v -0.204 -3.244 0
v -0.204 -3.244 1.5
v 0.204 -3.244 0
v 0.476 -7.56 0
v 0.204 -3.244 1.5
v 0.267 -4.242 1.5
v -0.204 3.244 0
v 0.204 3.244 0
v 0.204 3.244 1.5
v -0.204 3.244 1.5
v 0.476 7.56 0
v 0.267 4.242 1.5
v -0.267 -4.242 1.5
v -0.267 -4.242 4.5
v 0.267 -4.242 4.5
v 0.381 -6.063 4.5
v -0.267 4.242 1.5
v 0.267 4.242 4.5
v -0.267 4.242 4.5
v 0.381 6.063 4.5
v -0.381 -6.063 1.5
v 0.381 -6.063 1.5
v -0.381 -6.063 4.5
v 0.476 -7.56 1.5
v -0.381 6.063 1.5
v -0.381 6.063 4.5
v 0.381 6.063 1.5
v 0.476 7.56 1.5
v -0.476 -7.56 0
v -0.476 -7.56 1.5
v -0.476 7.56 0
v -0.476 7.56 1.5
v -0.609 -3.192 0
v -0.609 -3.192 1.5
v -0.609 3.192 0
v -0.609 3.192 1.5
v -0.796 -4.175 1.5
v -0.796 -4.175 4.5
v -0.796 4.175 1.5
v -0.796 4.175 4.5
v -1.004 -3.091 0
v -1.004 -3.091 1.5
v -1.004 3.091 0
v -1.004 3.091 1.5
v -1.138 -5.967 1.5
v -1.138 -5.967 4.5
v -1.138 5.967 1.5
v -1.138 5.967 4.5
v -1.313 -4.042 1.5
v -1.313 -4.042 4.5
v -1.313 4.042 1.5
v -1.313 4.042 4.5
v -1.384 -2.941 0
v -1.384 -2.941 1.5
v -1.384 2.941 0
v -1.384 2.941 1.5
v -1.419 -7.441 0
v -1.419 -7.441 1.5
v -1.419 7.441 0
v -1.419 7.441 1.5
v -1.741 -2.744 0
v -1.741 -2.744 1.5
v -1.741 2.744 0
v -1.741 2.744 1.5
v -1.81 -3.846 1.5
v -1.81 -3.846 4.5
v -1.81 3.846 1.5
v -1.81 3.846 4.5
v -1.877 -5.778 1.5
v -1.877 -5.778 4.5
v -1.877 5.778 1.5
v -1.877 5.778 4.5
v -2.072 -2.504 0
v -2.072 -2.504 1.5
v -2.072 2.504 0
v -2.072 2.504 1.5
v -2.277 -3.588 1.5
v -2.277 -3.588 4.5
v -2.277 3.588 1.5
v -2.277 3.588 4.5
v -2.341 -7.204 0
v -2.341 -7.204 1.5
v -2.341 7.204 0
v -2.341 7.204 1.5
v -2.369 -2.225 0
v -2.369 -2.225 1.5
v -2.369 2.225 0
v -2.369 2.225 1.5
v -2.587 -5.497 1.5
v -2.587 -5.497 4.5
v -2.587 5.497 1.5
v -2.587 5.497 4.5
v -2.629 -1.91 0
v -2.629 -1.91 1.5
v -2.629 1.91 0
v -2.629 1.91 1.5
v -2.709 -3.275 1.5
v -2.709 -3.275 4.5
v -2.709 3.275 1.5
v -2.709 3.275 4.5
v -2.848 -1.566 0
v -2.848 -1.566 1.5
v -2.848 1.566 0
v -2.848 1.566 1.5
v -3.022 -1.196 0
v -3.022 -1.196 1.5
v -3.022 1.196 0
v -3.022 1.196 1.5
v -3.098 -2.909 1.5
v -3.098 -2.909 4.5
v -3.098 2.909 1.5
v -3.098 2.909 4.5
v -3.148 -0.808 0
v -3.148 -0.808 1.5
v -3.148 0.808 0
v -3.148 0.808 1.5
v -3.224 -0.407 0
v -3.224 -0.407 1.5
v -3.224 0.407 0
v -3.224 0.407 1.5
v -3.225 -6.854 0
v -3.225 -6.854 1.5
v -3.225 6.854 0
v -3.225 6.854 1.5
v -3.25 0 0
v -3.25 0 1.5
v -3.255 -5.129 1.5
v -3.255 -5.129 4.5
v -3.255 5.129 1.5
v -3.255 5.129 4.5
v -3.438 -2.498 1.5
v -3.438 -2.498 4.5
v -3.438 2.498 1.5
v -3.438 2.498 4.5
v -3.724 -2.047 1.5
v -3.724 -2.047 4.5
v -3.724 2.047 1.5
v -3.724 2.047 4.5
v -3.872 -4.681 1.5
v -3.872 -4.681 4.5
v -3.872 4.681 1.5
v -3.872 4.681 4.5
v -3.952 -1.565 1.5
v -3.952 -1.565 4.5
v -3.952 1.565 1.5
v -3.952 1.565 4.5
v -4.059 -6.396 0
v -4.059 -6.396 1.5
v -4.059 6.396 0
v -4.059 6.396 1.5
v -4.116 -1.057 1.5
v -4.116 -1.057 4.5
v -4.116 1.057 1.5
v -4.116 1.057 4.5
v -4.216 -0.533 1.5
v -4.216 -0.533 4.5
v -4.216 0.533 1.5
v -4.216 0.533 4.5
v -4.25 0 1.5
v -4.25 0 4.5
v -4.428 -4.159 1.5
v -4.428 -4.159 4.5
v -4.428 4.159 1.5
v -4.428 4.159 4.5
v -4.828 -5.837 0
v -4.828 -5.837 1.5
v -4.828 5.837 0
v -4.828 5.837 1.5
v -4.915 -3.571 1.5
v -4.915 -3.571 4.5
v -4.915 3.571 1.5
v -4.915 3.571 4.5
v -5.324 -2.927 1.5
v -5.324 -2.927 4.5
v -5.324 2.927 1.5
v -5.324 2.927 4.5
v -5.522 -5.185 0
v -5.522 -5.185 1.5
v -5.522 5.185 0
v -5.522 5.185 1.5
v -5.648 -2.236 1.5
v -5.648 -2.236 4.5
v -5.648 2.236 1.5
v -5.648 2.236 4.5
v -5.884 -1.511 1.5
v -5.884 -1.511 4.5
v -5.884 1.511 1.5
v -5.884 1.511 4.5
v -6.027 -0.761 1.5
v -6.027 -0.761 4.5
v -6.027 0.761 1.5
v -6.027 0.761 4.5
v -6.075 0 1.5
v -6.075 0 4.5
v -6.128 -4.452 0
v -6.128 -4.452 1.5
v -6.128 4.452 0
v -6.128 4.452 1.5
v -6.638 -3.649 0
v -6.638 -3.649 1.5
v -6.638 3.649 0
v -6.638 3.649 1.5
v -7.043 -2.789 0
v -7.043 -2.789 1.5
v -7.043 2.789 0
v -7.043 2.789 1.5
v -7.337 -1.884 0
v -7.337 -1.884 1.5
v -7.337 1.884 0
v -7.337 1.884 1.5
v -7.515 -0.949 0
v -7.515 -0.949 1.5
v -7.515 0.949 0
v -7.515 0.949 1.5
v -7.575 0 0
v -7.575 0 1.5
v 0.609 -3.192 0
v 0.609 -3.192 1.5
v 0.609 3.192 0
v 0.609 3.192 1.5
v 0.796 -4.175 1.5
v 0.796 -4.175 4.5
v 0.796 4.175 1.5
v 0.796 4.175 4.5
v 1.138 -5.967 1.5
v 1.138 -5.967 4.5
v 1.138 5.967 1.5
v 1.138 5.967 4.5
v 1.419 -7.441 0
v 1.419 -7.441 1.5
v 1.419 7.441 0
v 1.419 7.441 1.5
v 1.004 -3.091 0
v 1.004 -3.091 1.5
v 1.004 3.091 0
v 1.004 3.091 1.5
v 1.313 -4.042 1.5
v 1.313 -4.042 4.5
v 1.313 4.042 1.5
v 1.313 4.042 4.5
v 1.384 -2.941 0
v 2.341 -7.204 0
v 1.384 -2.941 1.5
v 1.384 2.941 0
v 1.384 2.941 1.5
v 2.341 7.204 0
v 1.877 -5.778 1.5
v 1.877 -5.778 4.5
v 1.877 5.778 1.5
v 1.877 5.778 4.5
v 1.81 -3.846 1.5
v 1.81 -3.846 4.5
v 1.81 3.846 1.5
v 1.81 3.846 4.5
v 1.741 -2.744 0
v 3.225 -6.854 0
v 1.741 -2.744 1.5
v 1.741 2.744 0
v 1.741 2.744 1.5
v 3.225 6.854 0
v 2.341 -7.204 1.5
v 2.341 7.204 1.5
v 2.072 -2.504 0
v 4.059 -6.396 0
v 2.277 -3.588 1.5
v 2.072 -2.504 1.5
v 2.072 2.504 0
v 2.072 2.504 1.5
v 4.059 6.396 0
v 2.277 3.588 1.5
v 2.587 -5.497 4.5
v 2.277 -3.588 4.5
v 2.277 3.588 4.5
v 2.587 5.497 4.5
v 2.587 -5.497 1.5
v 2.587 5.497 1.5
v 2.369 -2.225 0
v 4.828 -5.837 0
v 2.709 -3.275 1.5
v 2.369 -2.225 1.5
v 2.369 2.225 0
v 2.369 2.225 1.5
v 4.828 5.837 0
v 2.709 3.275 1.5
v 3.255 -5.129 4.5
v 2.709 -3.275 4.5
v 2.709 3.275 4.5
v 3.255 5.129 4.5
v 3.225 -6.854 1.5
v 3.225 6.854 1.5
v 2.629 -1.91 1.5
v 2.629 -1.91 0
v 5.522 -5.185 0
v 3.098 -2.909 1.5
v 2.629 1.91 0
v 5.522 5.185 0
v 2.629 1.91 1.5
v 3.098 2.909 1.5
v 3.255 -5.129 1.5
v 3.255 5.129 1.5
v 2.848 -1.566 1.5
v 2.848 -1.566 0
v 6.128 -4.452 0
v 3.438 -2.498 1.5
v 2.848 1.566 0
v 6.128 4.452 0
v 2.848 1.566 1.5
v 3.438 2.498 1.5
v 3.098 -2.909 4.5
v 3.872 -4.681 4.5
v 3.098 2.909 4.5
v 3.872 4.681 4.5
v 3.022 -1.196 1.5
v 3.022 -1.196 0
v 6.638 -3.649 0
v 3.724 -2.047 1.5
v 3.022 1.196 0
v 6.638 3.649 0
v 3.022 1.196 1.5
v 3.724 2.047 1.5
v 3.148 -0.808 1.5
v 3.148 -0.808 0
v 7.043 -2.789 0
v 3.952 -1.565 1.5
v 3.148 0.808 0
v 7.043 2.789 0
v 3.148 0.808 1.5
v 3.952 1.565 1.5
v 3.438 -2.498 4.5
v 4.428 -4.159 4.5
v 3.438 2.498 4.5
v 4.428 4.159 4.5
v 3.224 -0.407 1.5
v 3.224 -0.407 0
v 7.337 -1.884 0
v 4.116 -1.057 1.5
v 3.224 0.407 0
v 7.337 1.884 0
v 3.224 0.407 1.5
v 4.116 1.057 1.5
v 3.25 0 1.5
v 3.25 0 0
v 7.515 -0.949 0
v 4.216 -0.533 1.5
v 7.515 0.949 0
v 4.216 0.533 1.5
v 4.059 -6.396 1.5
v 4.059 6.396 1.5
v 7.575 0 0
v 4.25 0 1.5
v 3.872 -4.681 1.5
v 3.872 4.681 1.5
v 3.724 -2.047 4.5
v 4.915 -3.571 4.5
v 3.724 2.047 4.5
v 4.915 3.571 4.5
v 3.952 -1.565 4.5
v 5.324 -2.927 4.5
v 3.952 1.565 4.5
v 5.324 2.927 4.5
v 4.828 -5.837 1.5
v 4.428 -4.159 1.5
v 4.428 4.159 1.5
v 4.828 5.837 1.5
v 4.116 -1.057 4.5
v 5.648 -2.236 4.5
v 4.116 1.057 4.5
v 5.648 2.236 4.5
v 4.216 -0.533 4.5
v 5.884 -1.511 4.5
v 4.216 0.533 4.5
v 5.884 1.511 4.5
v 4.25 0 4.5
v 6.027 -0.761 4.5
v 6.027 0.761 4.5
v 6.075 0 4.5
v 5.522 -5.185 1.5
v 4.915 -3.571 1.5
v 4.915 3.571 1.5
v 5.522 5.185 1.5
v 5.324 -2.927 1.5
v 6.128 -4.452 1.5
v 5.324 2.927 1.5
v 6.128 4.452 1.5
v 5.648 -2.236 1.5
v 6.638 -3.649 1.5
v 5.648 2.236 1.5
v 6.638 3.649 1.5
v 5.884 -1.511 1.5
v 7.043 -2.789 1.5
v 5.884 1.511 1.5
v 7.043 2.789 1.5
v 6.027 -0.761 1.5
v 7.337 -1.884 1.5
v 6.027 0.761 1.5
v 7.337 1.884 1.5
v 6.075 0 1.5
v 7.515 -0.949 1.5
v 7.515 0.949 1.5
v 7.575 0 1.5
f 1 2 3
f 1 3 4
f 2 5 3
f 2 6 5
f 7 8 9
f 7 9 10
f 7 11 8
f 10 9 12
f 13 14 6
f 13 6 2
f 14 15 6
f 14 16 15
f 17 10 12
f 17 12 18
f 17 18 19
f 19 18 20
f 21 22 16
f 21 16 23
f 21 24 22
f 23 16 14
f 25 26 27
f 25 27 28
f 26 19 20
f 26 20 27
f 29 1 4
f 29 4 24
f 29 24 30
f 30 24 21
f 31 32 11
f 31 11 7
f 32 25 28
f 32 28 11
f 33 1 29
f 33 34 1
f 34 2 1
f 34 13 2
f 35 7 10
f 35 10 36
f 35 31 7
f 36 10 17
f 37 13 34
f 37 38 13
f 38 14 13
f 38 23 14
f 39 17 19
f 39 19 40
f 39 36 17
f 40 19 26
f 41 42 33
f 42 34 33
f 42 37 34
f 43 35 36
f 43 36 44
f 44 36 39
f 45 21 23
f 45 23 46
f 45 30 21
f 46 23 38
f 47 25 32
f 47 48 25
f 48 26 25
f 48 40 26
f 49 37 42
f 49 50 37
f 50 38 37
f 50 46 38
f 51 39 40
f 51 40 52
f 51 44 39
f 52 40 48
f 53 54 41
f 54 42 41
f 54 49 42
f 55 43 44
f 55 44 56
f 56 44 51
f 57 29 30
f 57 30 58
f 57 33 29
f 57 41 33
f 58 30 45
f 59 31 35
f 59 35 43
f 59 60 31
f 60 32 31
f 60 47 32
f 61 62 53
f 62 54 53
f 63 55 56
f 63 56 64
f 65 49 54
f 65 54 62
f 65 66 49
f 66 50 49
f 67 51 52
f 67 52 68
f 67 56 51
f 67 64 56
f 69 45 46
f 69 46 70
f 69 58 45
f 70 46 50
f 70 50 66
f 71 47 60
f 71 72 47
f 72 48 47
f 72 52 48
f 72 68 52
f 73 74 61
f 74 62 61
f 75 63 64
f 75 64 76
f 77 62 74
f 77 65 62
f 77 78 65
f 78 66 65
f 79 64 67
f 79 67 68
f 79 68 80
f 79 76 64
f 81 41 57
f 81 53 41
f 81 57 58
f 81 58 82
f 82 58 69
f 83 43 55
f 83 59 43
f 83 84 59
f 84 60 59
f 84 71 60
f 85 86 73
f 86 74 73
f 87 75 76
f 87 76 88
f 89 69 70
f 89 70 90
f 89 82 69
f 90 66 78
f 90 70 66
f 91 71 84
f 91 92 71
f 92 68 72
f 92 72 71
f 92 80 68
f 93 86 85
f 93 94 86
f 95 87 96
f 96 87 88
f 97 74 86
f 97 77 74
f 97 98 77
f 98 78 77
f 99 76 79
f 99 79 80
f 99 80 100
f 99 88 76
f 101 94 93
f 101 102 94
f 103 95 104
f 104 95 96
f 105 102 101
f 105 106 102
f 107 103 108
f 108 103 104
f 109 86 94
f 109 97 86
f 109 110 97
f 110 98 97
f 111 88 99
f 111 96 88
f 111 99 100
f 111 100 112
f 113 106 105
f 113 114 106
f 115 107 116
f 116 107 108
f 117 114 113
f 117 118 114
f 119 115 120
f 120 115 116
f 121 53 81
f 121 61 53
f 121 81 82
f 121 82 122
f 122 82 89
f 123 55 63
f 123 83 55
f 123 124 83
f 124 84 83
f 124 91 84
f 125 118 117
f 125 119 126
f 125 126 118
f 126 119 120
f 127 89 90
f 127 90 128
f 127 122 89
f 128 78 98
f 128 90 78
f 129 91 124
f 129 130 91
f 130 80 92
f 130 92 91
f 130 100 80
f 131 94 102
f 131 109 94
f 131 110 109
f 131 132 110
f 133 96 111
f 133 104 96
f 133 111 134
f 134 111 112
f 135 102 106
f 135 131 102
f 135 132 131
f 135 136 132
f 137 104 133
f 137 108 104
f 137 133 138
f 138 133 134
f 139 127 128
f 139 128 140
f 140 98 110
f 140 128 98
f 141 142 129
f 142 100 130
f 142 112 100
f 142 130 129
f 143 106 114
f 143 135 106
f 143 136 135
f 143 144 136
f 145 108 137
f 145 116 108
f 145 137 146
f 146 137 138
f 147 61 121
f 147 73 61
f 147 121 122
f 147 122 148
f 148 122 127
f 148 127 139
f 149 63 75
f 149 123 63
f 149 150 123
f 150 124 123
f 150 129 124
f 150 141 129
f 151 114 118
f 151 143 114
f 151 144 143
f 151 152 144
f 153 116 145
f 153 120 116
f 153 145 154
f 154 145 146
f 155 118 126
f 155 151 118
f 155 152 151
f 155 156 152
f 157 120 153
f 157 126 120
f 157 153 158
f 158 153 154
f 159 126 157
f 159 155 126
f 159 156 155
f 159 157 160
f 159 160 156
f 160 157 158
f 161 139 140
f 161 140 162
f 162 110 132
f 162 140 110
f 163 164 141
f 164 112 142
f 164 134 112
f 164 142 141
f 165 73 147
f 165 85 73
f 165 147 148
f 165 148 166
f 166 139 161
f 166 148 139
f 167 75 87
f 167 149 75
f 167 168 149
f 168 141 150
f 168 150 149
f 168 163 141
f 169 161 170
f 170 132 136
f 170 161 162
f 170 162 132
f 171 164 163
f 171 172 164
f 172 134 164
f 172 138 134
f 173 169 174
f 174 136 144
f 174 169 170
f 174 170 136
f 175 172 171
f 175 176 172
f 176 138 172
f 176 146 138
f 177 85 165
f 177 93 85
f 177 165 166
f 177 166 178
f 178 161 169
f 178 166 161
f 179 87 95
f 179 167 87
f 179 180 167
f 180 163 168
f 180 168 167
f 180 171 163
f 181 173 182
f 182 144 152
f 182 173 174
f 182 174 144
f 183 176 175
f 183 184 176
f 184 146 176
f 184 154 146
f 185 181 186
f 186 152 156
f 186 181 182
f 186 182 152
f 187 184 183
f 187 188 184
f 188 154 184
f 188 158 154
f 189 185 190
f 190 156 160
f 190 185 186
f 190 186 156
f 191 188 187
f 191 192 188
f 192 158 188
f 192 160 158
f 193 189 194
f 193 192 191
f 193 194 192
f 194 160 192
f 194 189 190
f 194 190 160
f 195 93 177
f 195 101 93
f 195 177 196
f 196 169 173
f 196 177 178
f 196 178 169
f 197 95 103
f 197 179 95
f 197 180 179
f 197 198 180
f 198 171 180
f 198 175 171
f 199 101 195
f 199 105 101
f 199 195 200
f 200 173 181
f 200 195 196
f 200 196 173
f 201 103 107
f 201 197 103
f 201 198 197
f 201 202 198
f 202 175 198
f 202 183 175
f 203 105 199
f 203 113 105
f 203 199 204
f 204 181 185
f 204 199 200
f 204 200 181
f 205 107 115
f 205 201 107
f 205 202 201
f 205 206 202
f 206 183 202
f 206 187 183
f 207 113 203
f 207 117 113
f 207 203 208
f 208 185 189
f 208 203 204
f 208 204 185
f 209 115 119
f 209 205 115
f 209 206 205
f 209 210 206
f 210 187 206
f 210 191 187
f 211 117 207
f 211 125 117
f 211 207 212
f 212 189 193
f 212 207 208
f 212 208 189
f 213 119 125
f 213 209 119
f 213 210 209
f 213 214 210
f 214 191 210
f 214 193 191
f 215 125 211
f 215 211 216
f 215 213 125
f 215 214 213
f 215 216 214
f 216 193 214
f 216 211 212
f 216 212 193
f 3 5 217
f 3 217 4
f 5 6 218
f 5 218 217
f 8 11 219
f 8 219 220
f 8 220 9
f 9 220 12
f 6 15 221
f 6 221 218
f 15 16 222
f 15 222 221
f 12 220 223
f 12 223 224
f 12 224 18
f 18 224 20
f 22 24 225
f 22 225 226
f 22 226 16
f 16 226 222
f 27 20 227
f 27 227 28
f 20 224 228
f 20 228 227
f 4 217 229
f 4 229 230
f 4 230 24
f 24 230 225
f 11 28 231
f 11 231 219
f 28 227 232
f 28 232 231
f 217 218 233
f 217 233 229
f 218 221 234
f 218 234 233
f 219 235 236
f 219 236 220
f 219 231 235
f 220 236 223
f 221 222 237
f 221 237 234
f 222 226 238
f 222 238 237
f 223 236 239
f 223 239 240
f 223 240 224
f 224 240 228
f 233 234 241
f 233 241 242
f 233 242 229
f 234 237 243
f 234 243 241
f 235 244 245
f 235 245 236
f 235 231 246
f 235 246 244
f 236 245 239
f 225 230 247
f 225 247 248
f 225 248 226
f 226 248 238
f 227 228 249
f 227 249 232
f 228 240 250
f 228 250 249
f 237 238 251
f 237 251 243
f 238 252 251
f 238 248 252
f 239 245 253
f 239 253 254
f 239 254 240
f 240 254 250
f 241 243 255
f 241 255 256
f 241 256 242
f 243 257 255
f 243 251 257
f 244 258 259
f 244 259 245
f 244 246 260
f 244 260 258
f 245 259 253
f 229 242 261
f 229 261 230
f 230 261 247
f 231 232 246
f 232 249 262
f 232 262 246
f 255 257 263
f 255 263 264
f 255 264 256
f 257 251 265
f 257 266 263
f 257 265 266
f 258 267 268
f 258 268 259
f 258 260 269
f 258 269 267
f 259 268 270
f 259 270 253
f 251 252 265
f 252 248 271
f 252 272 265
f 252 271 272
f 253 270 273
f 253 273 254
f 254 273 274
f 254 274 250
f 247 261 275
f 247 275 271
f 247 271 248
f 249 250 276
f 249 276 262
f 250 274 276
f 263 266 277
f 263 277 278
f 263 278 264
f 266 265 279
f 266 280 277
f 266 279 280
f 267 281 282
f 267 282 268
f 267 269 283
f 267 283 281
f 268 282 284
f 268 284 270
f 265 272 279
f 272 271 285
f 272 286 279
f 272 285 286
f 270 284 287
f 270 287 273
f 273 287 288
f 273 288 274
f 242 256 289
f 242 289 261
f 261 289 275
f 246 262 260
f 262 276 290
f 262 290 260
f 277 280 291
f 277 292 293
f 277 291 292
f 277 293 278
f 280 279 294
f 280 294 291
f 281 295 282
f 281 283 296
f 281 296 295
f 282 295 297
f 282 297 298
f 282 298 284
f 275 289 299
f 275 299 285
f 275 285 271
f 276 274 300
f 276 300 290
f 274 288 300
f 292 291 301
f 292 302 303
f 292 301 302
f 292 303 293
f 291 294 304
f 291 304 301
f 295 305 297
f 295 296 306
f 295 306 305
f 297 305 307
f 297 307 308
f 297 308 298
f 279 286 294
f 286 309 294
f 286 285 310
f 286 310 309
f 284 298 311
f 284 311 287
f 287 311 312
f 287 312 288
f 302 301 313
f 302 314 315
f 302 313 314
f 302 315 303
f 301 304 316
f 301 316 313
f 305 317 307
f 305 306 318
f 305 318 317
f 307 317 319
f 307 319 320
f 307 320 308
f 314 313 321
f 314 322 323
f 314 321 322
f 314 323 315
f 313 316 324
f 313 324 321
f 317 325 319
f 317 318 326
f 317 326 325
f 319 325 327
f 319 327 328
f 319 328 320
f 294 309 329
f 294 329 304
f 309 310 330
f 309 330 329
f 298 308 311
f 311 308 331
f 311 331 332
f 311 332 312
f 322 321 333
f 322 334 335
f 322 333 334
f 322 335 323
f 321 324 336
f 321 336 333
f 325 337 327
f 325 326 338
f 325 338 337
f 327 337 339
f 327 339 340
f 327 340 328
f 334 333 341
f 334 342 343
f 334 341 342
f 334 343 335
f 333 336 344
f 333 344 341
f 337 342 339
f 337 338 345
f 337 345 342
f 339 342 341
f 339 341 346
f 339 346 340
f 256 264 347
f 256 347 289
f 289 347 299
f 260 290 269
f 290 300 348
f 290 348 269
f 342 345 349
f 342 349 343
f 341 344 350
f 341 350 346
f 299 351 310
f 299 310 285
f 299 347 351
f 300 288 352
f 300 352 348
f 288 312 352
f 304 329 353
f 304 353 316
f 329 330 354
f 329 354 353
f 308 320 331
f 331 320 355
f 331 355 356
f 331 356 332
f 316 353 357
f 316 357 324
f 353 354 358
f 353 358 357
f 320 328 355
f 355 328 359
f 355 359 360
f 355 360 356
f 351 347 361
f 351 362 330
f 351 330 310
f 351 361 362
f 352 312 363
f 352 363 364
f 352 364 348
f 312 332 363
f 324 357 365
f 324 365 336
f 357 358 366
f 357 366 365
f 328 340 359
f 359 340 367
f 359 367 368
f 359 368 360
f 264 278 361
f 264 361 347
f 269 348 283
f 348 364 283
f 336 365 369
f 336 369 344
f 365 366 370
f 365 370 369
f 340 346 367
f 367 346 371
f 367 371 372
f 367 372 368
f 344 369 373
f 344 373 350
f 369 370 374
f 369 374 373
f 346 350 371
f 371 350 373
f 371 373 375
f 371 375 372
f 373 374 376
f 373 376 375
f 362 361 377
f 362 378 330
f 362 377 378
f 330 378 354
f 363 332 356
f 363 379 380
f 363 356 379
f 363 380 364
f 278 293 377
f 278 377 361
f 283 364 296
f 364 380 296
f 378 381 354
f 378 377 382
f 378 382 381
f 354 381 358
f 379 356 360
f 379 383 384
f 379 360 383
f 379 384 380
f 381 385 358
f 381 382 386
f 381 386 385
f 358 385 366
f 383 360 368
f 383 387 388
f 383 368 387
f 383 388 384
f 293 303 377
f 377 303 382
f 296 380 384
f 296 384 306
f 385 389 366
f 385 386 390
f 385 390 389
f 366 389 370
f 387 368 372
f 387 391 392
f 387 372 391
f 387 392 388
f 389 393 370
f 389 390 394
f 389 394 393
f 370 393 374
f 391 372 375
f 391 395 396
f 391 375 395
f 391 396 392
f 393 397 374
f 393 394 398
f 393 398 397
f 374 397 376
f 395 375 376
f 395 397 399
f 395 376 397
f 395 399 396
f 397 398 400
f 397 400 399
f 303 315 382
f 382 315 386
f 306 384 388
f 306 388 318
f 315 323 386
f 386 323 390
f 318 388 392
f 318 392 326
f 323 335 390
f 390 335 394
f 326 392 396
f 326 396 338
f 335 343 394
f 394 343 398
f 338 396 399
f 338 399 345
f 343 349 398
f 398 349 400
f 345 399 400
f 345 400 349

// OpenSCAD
include <../parameters.scad>

draft = $preview;

module 888_1023(height = 3, draft = true){

    inner_diameter = M8_screw_diameter;
    outer_diameter = bearing_efsm_12_d + 3;
    rim_height = 1.5;
    bearng_ball_height = height;

    difference(){
        union(){
            cylinder(h = rim_height, d = outer_diameter, $fn = 50);
            translate([0,0,rim_height])
                cylinder(h = bearng_ball_height, d = bearing_efsm_12_d, $fn = 50);
        }


        cylinder(d = M6_screw_diameter, h = 10, $fn = 50);

        translate([0, 0, rim_height])
            cylinder(h = 2 * bearng_ball_height , d = inner_diameter, $fn = 50);
    }
}

888_1023(3, draft);
